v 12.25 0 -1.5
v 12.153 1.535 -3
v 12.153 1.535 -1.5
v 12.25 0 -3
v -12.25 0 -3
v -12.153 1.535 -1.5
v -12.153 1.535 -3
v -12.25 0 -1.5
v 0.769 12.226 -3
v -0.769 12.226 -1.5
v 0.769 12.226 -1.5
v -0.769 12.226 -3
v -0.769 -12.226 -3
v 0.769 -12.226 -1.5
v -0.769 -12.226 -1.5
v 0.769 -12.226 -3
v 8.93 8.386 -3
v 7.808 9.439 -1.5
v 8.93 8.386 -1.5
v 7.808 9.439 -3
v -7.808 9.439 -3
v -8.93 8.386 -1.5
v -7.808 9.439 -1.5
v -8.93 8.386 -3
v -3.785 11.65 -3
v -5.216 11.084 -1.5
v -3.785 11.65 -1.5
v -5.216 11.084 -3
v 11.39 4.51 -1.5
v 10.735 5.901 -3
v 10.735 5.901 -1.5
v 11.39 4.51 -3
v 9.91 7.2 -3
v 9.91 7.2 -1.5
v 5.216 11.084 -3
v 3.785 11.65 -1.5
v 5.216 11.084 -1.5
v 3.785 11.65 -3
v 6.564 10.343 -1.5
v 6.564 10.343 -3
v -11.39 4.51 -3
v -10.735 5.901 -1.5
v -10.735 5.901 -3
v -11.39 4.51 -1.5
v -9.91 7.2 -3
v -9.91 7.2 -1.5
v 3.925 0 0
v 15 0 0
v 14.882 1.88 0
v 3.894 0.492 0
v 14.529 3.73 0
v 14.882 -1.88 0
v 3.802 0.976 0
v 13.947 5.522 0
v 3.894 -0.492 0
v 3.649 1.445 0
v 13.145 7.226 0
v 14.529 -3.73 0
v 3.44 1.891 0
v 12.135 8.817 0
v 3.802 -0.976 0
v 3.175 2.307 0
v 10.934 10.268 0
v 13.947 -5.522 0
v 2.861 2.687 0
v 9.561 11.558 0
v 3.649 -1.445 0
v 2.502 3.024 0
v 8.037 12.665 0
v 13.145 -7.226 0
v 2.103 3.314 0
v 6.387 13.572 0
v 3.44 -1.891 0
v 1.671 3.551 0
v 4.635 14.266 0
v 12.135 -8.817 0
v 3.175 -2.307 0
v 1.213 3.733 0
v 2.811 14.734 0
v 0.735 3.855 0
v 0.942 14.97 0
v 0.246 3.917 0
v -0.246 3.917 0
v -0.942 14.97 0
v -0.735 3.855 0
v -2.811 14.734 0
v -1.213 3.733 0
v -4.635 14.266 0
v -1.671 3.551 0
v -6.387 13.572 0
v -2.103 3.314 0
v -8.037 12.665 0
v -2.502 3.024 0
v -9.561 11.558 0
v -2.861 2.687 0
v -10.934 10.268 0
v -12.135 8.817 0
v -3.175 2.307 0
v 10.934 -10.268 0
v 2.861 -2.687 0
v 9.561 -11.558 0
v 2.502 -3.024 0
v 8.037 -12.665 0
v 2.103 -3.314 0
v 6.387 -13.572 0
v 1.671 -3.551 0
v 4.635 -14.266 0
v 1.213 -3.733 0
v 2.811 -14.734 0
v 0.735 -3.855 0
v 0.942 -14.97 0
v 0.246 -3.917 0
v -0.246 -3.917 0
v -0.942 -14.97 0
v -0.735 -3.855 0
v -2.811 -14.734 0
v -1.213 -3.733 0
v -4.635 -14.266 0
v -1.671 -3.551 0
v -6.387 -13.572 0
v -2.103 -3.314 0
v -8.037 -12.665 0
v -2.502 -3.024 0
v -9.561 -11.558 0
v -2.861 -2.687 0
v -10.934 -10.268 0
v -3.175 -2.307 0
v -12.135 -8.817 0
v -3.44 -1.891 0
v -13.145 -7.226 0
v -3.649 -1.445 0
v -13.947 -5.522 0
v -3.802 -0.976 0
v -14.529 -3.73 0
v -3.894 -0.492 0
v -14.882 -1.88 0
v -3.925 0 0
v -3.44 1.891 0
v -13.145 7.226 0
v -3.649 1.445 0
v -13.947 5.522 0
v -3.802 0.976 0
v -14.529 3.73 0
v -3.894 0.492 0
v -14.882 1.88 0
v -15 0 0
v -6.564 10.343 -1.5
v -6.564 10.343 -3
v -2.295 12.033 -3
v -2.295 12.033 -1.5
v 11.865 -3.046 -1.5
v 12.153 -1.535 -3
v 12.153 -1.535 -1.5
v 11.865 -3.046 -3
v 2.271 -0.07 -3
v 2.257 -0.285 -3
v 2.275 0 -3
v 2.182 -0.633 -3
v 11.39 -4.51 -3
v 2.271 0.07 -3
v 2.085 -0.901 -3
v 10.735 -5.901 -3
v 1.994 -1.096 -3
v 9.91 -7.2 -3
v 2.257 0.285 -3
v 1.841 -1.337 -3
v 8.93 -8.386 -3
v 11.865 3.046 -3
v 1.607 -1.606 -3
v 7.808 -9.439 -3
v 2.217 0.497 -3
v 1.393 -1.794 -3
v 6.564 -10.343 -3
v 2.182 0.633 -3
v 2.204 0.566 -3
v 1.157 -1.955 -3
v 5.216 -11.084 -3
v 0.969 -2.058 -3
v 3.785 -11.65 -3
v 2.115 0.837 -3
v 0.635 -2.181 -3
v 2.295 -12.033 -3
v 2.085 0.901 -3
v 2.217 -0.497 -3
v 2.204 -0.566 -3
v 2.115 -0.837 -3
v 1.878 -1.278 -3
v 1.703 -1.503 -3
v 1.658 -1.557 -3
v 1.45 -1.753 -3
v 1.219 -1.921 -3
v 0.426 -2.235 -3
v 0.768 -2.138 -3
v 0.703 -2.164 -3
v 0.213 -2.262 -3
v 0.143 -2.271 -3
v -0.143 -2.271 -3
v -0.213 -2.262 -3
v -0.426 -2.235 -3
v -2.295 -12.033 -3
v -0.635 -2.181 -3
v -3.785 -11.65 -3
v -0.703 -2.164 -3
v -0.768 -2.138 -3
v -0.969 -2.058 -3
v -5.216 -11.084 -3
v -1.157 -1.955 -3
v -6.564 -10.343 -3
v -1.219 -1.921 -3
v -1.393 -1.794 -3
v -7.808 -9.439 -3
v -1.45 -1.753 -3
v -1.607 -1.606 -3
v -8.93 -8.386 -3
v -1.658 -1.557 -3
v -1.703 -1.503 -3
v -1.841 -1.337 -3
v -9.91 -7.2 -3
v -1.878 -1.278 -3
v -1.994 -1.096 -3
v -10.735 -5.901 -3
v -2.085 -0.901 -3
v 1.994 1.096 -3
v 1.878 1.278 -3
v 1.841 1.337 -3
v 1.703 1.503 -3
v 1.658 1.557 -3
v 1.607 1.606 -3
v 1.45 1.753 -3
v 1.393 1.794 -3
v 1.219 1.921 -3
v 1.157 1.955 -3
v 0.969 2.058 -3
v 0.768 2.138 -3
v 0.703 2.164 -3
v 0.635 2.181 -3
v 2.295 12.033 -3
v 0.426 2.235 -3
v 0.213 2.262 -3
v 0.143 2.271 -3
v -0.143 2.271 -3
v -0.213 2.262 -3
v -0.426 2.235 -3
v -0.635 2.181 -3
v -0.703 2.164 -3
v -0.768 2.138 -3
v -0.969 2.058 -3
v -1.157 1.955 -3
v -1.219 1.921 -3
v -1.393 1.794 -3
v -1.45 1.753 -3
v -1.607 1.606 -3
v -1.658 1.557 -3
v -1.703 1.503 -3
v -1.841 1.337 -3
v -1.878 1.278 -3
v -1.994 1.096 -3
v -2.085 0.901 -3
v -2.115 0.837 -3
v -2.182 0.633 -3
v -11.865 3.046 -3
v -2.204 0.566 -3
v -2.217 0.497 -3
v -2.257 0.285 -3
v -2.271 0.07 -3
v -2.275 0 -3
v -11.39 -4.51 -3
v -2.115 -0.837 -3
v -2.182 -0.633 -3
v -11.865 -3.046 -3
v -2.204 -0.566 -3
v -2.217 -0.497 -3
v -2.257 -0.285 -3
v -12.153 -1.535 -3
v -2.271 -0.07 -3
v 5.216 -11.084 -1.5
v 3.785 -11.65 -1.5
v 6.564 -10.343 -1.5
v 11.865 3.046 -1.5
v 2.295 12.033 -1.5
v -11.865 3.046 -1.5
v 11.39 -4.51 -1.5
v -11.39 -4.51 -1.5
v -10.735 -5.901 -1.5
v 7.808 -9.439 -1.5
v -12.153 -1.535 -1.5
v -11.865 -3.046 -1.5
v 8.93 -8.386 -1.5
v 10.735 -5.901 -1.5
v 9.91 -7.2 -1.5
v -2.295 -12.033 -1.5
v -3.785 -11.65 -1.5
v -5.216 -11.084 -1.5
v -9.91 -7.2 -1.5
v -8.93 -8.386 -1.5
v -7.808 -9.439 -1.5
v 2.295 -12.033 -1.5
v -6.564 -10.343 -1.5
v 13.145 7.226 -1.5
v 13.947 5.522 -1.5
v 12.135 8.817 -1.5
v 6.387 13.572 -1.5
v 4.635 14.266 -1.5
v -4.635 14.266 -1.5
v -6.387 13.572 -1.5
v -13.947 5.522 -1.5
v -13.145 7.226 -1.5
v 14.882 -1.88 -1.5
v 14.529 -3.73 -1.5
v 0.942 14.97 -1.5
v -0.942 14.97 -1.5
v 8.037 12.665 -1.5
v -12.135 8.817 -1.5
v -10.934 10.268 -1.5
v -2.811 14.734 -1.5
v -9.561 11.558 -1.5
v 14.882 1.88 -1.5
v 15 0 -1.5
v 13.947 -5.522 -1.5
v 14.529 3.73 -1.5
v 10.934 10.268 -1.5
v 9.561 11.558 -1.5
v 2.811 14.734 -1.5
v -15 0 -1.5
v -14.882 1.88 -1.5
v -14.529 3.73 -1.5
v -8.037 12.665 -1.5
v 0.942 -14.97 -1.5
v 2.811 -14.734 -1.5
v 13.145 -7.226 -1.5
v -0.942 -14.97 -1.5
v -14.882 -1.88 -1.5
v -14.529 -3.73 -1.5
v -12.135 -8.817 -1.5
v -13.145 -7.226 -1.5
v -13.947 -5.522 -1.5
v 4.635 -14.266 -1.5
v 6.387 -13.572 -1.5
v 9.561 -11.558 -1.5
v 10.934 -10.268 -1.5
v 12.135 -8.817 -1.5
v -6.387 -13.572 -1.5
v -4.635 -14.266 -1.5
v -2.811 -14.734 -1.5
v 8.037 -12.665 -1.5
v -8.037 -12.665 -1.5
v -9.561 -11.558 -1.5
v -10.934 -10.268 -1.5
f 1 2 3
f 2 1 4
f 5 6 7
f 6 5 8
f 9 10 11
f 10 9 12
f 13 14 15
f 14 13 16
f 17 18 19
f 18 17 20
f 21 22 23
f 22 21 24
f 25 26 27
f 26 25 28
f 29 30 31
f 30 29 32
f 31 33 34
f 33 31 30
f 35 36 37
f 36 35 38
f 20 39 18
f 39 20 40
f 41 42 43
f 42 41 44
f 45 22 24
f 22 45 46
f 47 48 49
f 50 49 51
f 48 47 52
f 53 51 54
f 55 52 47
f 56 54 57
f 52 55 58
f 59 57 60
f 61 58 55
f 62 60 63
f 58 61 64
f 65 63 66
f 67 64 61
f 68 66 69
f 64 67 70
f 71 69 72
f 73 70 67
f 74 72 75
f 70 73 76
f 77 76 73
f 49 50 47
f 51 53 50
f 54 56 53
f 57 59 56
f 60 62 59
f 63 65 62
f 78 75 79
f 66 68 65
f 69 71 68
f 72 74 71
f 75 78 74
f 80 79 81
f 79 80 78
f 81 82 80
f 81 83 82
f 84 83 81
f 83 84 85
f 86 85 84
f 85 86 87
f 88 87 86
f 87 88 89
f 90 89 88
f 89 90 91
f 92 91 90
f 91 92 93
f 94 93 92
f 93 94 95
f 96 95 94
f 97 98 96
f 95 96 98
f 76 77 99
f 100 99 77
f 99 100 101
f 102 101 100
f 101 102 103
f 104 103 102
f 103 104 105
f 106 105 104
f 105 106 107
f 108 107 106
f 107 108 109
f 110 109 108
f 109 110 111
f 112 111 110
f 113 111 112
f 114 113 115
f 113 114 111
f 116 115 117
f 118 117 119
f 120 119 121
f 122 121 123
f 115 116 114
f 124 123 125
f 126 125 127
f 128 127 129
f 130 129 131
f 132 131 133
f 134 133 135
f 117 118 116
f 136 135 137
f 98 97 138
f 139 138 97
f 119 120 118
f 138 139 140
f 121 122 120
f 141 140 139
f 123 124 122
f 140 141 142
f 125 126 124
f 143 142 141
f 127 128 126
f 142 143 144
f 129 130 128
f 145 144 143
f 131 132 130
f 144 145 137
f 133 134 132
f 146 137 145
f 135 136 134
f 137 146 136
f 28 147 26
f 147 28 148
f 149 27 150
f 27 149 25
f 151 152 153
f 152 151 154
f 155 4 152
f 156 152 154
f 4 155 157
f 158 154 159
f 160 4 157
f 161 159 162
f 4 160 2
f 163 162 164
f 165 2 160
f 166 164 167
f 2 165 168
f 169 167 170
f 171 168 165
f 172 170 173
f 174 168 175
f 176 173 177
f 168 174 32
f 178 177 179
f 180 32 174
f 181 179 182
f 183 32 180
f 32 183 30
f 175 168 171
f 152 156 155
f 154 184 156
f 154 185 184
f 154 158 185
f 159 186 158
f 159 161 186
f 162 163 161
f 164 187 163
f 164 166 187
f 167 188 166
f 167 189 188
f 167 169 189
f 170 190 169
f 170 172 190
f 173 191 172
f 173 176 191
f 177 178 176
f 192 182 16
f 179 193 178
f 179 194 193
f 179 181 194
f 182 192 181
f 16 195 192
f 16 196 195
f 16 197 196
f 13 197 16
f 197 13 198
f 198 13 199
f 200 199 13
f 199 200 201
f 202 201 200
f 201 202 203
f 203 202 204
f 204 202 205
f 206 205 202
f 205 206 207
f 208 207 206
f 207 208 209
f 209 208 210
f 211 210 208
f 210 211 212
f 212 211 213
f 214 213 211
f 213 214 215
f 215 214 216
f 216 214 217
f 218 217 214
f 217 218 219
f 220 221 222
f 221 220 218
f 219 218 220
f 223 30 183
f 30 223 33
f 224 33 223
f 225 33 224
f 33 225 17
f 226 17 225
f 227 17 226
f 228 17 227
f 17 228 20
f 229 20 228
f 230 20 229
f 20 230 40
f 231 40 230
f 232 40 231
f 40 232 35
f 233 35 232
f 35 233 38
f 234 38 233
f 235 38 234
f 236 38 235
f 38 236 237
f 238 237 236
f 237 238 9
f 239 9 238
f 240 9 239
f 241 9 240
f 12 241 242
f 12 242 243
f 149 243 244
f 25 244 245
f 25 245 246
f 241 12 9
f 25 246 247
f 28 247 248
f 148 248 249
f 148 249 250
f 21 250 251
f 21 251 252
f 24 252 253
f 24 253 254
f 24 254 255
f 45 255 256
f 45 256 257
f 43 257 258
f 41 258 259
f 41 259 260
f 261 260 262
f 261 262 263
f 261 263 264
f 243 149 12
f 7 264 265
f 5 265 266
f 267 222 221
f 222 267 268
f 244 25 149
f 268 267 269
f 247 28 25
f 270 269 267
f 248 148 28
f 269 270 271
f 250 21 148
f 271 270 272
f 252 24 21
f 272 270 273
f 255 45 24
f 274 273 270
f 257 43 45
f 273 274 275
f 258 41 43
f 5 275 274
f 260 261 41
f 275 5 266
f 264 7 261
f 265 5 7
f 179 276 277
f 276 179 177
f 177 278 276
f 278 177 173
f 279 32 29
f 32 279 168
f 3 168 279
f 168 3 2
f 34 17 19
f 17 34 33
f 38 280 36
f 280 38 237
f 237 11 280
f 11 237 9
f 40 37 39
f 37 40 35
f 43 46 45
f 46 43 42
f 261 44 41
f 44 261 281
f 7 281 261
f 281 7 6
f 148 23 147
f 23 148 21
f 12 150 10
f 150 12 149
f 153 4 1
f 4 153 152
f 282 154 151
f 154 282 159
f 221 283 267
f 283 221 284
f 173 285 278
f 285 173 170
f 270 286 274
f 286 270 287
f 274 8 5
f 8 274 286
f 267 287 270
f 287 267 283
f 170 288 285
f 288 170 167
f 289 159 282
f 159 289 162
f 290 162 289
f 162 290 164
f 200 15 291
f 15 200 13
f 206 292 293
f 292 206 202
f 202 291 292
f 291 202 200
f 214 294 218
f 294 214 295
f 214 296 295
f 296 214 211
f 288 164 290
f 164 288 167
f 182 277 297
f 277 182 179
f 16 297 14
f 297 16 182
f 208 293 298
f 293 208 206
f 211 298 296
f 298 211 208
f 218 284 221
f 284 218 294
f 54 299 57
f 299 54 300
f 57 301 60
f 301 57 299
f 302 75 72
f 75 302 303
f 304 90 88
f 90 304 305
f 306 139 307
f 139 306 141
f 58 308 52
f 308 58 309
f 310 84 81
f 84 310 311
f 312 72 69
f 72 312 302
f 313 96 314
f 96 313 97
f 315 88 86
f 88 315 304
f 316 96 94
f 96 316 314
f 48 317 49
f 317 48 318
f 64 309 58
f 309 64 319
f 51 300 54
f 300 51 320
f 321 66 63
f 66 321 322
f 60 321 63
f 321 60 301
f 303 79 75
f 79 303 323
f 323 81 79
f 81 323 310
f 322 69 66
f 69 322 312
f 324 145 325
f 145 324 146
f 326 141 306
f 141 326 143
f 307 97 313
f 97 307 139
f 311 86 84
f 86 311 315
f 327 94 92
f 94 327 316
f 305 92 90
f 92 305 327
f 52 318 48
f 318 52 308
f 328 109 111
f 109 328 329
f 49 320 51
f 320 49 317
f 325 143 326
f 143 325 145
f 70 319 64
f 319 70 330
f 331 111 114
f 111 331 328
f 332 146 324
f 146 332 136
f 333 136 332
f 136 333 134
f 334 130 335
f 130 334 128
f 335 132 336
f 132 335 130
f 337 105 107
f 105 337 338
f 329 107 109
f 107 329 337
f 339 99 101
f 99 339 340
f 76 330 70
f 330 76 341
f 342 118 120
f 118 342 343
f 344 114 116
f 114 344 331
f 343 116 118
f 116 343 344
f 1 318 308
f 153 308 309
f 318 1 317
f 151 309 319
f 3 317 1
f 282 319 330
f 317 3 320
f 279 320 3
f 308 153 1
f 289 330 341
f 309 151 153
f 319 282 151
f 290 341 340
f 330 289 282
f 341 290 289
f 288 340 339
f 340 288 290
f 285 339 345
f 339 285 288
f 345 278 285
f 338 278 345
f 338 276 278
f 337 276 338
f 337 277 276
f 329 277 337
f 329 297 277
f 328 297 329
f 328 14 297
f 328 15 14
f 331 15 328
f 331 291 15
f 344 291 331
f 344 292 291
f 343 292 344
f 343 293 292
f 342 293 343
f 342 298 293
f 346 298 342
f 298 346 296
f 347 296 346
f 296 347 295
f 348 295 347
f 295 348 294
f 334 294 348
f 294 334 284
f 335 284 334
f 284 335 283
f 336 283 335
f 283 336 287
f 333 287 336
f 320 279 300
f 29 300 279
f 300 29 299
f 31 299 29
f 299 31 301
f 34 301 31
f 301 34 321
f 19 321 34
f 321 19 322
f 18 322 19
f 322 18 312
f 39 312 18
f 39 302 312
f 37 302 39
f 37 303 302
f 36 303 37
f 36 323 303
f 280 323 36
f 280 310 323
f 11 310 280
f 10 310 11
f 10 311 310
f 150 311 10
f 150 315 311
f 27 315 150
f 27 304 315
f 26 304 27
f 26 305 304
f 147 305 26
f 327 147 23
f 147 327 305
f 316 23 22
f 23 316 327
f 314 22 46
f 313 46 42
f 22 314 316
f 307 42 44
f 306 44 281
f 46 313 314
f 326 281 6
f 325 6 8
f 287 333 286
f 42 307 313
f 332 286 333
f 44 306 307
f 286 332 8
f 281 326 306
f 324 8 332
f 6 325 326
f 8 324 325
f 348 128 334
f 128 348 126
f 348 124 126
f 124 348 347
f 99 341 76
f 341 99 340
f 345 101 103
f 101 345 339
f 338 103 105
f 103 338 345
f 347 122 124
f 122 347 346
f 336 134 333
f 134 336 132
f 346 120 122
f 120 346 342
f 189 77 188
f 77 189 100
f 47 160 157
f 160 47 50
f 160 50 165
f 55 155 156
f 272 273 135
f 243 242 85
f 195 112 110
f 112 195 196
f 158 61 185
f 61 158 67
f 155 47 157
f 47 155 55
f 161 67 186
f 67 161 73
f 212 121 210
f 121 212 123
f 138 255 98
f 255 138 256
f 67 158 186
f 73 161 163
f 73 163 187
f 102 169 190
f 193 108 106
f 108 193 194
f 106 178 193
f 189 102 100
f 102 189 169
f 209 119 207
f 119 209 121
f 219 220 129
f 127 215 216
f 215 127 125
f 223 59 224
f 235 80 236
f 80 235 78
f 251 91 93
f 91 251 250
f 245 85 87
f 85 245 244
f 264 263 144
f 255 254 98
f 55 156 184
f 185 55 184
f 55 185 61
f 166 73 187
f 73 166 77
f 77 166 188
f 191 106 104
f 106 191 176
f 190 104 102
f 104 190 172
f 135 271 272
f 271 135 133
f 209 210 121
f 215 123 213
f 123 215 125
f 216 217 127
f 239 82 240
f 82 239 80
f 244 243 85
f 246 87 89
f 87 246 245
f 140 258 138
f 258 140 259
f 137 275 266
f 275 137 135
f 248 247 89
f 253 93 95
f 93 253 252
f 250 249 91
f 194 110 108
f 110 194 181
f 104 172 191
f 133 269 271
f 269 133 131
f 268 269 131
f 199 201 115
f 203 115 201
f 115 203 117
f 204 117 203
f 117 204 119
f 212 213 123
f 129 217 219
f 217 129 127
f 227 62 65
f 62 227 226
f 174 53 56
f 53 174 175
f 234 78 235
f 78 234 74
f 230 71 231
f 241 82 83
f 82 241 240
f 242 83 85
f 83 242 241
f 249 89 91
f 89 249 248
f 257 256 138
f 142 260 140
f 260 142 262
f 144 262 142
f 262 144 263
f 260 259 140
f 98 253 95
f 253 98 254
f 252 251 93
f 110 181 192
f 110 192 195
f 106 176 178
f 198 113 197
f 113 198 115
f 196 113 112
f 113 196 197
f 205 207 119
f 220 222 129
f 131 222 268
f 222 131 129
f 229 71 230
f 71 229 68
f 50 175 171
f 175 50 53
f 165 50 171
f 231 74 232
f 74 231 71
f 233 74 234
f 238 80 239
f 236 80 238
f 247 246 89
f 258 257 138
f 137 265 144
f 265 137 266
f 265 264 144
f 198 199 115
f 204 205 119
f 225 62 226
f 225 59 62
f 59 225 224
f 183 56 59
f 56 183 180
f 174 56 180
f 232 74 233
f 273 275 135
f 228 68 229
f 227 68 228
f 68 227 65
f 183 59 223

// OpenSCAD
$fn = 50;


difference() {
	union() {
		translate(v = [0, 0, -3.0000000000]) {
			cylinder(h = 3, r = 12.2500000000);
		}
		translate(v = [0, 0, -1.5000000000]) {
			cylinder(h = 1.5000000000, r = 15.0000000000);
		}
	}
	union() {
		translate(v = [0, 0, 0]) {
			rotate(a = [0, 0, 0]) {
				difference() {
					union() {
						#translate(v = [0, 0, -3.5000000000]) {
							cylinder(h = 3.5000000000, r1 = 2.0000000000, r2 = 3.9250000000);
						}
						#translate(v = [0, 0, -350.0000000000]) {
							cylinder(h = 200, r = 2.0000000000);
						}
						#translate(v = [0, 0, -350.0000000000]) {
							cylinder(h = 200, r = 2.1250000000);
						}
						#translate(v = [0, 0, -350.0000000000]) {
							cylinder(h = 200, r = 2.0000000000);
						}
					}
					union();
				}
			}
		}
	}
}
